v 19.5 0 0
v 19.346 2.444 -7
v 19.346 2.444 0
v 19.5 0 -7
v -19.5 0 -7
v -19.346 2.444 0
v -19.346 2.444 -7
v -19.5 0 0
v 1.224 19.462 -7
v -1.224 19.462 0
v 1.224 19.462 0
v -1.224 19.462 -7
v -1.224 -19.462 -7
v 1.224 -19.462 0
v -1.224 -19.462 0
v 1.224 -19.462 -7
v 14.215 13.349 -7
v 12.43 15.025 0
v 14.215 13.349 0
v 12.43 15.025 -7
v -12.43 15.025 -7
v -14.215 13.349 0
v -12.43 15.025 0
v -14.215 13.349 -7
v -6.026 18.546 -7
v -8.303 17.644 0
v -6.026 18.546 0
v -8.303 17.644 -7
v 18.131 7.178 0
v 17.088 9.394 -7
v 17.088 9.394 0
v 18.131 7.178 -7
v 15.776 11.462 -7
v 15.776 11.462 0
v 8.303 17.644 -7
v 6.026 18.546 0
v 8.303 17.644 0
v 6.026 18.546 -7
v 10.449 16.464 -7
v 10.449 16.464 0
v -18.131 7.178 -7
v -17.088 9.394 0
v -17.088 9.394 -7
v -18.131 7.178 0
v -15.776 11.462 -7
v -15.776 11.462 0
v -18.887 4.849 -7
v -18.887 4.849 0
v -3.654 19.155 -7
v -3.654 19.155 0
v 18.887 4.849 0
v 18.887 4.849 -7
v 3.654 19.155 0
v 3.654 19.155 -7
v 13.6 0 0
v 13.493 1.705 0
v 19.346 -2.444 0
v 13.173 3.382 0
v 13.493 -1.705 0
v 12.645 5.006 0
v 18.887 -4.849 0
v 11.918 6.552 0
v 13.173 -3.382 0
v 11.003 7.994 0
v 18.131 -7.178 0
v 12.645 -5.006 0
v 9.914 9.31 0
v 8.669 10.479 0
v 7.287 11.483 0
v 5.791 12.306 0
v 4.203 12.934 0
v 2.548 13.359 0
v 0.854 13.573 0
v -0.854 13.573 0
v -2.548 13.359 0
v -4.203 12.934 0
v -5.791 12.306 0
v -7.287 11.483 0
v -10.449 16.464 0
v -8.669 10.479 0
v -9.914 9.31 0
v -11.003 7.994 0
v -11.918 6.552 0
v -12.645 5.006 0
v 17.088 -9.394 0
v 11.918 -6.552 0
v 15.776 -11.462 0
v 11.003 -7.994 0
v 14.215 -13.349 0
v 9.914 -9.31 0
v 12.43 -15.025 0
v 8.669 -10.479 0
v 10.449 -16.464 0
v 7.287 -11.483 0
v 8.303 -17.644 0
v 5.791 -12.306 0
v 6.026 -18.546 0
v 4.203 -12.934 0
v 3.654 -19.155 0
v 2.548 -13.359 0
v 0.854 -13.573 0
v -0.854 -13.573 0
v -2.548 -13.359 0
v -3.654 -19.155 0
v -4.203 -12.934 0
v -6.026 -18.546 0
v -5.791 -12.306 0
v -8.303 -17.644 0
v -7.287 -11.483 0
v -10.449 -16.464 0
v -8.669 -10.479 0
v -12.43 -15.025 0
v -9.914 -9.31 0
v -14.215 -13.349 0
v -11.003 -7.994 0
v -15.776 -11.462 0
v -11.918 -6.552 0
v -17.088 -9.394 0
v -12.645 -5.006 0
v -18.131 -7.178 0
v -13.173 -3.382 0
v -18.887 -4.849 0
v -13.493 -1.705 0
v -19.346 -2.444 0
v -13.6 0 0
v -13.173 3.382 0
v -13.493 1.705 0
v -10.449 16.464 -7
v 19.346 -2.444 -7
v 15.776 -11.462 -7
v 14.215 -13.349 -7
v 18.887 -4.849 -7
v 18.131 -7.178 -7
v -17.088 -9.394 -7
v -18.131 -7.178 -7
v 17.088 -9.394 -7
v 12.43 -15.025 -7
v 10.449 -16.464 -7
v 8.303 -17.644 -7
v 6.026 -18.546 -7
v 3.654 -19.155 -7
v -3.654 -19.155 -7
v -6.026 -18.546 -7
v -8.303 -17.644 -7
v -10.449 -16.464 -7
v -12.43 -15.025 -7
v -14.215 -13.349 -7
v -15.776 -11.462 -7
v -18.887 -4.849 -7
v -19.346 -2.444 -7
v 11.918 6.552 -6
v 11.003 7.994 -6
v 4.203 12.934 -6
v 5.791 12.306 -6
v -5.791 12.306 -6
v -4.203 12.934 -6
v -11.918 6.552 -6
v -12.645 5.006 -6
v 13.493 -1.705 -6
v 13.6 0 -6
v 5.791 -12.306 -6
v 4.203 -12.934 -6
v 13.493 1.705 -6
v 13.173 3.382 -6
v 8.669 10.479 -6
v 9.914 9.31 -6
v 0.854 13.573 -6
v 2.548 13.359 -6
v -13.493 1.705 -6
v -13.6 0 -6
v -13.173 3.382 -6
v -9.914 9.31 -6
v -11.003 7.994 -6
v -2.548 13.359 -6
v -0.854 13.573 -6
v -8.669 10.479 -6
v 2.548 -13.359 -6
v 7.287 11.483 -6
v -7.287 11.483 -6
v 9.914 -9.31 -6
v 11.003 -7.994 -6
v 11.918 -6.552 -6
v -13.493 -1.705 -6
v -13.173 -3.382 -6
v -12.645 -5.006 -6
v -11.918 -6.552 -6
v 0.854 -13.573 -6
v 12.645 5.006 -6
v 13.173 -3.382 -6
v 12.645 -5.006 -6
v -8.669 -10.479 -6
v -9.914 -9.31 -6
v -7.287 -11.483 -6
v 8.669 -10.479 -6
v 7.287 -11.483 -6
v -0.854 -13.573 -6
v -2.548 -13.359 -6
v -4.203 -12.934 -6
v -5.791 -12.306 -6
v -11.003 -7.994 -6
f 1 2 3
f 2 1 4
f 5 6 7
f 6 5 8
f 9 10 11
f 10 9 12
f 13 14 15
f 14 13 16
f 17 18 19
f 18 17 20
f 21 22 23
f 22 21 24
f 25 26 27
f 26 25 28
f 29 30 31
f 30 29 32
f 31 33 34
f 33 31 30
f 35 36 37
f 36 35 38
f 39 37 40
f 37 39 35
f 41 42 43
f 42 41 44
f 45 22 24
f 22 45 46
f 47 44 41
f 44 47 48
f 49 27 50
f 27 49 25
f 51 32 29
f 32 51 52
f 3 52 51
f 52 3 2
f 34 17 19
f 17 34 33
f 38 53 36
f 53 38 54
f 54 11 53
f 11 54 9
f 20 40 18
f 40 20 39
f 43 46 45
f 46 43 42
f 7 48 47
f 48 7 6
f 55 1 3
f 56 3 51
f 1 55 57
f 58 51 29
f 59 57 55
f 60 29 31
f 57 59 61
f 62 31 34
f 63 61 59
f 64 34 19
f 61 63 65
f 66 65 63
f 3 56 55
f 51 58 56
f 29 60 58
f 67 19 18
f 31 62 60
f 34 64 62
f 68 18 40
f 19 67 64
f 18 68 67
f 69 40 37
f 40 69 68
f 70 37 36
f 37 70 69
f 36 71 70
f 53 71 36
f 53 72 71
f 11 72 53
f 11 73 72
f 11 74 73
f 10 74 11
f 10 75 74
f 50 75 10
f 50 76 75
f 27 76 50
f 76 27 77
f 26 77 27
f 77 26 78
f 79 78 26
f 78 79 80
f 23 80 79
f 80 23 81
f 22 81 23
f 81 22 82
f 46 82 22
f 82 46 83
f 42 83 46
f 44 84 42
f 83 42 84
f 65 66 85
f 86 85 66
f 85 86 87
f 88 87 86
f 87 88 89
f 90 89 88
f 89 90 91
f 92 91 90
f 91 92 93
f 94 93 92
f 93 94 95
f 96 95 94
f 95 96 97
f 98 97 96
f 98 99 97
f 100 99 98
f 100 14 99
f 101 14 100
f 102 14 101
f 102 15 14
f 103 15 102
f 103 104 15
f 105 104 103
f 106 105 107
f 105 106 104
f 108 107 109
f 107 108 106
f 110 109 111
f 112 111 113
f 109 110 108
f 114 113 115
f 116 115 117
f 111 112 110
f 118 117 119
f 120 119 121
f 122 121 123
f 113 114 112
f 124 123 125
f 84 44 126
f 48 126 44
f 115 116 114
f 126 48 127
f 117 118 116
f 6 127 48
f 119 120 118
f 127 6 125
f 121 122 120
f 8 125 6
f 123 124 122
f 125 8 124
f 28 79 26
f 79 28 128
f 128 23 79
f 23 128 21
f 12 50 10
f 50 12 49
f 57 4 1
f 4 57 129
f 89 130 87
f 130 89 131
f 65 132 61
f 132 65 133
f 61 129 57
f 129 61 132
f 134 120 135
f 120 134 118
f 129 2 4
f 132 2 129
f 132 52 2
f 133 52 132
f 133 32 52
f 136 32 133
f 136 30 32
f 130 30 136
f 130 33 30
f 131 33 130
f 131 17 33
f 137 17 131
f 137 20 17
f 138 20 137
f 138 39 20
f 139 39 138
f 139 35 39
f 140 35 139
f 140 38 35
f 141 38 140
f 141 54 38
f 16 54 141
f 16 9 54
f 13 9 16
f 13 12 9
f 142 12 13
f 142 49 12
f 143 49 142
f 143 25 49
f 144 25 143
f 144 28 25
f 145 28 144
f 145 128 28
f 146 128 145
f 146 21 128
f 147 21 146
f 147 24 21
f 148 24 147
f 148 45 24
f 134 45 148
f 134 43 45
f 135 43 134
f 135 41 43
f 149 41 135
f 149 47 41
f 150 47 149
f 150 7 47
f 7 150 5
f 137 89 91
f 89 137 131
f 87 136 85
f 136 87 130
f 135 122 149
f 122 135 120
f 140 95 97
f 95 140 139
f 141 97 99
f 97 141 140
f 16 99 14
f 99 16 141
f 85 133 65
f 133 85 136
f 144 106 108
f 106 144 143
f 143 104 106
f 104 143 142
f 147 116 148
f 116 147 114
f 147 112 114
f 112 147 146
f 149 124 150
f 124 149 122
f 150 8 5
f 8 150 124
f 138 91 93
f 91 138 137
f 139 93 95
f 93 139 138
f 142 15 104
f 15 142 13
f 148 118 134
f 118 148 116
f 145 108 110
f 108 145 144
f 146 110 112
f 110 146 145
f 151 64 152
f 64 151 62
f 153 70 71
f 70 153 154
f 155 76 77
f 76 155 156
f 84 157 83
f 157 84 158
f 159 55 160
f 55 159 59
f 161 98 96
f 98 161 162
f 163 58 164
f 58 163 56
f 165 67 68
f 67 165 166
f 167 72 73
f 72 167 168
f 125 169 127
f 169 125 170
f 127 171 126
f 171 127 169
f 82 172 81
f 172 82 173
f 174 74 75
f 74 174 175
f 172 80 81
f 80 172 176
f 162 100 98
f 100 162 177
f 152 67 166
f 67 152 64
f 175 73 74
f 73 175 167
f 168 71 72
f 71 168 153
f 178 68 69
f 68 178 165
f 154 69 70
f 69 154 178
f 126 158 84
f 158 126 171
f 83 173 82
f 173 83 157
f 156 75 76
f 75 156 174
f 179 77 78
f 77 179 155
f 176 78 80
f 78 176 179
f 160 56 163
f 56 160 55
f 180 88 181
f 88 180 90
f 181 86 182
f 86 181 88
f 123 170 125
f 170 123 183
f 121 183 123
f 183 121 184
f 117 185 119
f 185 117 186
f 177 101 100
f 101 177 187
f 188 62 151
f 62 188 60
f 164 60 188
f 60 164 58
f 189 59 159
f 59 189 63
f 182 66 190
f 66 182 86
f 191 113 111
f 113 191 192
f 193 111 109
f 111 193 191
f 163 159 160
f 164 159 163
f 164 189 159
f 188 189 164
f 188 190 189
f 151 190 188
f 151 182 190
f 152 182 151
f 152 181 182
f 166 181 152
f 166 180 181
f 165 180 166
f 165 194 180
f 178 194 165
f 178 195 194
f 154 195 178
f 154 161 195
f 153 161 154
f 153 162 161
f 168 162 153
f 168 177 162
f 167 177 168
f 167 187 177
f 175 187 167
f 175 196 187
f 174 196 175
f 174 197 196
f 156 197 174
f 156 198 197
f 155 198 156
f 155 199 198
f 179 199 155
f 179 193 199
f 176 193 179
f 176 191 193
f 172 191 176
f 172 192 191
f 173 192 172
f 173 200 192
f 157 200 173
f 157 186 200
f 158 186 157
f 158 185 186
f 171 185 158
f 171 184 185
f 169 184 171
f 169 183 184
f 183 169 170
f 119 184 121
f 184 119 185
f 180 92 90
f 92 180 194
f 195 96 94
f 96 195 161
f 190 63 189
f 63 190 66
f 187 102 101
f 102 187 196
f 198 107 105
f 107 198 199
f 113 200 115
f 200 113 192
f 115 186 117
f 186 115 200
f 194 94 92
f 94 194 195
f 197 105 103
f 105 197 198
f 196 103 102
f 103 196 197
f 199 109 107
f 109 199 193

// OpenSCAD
$fn = 50;


difference() {
	union() {
		translate(v = [0, 0, -7.0000000000]) {
			cylinder(h = 7, r = 19.5000000000);
		}
	}
	union() {
		#translate(v = [0, 0, -6.0000000000]) {
			cylinder(h = 6, r = 13.6000000000);
		}
	}
}
